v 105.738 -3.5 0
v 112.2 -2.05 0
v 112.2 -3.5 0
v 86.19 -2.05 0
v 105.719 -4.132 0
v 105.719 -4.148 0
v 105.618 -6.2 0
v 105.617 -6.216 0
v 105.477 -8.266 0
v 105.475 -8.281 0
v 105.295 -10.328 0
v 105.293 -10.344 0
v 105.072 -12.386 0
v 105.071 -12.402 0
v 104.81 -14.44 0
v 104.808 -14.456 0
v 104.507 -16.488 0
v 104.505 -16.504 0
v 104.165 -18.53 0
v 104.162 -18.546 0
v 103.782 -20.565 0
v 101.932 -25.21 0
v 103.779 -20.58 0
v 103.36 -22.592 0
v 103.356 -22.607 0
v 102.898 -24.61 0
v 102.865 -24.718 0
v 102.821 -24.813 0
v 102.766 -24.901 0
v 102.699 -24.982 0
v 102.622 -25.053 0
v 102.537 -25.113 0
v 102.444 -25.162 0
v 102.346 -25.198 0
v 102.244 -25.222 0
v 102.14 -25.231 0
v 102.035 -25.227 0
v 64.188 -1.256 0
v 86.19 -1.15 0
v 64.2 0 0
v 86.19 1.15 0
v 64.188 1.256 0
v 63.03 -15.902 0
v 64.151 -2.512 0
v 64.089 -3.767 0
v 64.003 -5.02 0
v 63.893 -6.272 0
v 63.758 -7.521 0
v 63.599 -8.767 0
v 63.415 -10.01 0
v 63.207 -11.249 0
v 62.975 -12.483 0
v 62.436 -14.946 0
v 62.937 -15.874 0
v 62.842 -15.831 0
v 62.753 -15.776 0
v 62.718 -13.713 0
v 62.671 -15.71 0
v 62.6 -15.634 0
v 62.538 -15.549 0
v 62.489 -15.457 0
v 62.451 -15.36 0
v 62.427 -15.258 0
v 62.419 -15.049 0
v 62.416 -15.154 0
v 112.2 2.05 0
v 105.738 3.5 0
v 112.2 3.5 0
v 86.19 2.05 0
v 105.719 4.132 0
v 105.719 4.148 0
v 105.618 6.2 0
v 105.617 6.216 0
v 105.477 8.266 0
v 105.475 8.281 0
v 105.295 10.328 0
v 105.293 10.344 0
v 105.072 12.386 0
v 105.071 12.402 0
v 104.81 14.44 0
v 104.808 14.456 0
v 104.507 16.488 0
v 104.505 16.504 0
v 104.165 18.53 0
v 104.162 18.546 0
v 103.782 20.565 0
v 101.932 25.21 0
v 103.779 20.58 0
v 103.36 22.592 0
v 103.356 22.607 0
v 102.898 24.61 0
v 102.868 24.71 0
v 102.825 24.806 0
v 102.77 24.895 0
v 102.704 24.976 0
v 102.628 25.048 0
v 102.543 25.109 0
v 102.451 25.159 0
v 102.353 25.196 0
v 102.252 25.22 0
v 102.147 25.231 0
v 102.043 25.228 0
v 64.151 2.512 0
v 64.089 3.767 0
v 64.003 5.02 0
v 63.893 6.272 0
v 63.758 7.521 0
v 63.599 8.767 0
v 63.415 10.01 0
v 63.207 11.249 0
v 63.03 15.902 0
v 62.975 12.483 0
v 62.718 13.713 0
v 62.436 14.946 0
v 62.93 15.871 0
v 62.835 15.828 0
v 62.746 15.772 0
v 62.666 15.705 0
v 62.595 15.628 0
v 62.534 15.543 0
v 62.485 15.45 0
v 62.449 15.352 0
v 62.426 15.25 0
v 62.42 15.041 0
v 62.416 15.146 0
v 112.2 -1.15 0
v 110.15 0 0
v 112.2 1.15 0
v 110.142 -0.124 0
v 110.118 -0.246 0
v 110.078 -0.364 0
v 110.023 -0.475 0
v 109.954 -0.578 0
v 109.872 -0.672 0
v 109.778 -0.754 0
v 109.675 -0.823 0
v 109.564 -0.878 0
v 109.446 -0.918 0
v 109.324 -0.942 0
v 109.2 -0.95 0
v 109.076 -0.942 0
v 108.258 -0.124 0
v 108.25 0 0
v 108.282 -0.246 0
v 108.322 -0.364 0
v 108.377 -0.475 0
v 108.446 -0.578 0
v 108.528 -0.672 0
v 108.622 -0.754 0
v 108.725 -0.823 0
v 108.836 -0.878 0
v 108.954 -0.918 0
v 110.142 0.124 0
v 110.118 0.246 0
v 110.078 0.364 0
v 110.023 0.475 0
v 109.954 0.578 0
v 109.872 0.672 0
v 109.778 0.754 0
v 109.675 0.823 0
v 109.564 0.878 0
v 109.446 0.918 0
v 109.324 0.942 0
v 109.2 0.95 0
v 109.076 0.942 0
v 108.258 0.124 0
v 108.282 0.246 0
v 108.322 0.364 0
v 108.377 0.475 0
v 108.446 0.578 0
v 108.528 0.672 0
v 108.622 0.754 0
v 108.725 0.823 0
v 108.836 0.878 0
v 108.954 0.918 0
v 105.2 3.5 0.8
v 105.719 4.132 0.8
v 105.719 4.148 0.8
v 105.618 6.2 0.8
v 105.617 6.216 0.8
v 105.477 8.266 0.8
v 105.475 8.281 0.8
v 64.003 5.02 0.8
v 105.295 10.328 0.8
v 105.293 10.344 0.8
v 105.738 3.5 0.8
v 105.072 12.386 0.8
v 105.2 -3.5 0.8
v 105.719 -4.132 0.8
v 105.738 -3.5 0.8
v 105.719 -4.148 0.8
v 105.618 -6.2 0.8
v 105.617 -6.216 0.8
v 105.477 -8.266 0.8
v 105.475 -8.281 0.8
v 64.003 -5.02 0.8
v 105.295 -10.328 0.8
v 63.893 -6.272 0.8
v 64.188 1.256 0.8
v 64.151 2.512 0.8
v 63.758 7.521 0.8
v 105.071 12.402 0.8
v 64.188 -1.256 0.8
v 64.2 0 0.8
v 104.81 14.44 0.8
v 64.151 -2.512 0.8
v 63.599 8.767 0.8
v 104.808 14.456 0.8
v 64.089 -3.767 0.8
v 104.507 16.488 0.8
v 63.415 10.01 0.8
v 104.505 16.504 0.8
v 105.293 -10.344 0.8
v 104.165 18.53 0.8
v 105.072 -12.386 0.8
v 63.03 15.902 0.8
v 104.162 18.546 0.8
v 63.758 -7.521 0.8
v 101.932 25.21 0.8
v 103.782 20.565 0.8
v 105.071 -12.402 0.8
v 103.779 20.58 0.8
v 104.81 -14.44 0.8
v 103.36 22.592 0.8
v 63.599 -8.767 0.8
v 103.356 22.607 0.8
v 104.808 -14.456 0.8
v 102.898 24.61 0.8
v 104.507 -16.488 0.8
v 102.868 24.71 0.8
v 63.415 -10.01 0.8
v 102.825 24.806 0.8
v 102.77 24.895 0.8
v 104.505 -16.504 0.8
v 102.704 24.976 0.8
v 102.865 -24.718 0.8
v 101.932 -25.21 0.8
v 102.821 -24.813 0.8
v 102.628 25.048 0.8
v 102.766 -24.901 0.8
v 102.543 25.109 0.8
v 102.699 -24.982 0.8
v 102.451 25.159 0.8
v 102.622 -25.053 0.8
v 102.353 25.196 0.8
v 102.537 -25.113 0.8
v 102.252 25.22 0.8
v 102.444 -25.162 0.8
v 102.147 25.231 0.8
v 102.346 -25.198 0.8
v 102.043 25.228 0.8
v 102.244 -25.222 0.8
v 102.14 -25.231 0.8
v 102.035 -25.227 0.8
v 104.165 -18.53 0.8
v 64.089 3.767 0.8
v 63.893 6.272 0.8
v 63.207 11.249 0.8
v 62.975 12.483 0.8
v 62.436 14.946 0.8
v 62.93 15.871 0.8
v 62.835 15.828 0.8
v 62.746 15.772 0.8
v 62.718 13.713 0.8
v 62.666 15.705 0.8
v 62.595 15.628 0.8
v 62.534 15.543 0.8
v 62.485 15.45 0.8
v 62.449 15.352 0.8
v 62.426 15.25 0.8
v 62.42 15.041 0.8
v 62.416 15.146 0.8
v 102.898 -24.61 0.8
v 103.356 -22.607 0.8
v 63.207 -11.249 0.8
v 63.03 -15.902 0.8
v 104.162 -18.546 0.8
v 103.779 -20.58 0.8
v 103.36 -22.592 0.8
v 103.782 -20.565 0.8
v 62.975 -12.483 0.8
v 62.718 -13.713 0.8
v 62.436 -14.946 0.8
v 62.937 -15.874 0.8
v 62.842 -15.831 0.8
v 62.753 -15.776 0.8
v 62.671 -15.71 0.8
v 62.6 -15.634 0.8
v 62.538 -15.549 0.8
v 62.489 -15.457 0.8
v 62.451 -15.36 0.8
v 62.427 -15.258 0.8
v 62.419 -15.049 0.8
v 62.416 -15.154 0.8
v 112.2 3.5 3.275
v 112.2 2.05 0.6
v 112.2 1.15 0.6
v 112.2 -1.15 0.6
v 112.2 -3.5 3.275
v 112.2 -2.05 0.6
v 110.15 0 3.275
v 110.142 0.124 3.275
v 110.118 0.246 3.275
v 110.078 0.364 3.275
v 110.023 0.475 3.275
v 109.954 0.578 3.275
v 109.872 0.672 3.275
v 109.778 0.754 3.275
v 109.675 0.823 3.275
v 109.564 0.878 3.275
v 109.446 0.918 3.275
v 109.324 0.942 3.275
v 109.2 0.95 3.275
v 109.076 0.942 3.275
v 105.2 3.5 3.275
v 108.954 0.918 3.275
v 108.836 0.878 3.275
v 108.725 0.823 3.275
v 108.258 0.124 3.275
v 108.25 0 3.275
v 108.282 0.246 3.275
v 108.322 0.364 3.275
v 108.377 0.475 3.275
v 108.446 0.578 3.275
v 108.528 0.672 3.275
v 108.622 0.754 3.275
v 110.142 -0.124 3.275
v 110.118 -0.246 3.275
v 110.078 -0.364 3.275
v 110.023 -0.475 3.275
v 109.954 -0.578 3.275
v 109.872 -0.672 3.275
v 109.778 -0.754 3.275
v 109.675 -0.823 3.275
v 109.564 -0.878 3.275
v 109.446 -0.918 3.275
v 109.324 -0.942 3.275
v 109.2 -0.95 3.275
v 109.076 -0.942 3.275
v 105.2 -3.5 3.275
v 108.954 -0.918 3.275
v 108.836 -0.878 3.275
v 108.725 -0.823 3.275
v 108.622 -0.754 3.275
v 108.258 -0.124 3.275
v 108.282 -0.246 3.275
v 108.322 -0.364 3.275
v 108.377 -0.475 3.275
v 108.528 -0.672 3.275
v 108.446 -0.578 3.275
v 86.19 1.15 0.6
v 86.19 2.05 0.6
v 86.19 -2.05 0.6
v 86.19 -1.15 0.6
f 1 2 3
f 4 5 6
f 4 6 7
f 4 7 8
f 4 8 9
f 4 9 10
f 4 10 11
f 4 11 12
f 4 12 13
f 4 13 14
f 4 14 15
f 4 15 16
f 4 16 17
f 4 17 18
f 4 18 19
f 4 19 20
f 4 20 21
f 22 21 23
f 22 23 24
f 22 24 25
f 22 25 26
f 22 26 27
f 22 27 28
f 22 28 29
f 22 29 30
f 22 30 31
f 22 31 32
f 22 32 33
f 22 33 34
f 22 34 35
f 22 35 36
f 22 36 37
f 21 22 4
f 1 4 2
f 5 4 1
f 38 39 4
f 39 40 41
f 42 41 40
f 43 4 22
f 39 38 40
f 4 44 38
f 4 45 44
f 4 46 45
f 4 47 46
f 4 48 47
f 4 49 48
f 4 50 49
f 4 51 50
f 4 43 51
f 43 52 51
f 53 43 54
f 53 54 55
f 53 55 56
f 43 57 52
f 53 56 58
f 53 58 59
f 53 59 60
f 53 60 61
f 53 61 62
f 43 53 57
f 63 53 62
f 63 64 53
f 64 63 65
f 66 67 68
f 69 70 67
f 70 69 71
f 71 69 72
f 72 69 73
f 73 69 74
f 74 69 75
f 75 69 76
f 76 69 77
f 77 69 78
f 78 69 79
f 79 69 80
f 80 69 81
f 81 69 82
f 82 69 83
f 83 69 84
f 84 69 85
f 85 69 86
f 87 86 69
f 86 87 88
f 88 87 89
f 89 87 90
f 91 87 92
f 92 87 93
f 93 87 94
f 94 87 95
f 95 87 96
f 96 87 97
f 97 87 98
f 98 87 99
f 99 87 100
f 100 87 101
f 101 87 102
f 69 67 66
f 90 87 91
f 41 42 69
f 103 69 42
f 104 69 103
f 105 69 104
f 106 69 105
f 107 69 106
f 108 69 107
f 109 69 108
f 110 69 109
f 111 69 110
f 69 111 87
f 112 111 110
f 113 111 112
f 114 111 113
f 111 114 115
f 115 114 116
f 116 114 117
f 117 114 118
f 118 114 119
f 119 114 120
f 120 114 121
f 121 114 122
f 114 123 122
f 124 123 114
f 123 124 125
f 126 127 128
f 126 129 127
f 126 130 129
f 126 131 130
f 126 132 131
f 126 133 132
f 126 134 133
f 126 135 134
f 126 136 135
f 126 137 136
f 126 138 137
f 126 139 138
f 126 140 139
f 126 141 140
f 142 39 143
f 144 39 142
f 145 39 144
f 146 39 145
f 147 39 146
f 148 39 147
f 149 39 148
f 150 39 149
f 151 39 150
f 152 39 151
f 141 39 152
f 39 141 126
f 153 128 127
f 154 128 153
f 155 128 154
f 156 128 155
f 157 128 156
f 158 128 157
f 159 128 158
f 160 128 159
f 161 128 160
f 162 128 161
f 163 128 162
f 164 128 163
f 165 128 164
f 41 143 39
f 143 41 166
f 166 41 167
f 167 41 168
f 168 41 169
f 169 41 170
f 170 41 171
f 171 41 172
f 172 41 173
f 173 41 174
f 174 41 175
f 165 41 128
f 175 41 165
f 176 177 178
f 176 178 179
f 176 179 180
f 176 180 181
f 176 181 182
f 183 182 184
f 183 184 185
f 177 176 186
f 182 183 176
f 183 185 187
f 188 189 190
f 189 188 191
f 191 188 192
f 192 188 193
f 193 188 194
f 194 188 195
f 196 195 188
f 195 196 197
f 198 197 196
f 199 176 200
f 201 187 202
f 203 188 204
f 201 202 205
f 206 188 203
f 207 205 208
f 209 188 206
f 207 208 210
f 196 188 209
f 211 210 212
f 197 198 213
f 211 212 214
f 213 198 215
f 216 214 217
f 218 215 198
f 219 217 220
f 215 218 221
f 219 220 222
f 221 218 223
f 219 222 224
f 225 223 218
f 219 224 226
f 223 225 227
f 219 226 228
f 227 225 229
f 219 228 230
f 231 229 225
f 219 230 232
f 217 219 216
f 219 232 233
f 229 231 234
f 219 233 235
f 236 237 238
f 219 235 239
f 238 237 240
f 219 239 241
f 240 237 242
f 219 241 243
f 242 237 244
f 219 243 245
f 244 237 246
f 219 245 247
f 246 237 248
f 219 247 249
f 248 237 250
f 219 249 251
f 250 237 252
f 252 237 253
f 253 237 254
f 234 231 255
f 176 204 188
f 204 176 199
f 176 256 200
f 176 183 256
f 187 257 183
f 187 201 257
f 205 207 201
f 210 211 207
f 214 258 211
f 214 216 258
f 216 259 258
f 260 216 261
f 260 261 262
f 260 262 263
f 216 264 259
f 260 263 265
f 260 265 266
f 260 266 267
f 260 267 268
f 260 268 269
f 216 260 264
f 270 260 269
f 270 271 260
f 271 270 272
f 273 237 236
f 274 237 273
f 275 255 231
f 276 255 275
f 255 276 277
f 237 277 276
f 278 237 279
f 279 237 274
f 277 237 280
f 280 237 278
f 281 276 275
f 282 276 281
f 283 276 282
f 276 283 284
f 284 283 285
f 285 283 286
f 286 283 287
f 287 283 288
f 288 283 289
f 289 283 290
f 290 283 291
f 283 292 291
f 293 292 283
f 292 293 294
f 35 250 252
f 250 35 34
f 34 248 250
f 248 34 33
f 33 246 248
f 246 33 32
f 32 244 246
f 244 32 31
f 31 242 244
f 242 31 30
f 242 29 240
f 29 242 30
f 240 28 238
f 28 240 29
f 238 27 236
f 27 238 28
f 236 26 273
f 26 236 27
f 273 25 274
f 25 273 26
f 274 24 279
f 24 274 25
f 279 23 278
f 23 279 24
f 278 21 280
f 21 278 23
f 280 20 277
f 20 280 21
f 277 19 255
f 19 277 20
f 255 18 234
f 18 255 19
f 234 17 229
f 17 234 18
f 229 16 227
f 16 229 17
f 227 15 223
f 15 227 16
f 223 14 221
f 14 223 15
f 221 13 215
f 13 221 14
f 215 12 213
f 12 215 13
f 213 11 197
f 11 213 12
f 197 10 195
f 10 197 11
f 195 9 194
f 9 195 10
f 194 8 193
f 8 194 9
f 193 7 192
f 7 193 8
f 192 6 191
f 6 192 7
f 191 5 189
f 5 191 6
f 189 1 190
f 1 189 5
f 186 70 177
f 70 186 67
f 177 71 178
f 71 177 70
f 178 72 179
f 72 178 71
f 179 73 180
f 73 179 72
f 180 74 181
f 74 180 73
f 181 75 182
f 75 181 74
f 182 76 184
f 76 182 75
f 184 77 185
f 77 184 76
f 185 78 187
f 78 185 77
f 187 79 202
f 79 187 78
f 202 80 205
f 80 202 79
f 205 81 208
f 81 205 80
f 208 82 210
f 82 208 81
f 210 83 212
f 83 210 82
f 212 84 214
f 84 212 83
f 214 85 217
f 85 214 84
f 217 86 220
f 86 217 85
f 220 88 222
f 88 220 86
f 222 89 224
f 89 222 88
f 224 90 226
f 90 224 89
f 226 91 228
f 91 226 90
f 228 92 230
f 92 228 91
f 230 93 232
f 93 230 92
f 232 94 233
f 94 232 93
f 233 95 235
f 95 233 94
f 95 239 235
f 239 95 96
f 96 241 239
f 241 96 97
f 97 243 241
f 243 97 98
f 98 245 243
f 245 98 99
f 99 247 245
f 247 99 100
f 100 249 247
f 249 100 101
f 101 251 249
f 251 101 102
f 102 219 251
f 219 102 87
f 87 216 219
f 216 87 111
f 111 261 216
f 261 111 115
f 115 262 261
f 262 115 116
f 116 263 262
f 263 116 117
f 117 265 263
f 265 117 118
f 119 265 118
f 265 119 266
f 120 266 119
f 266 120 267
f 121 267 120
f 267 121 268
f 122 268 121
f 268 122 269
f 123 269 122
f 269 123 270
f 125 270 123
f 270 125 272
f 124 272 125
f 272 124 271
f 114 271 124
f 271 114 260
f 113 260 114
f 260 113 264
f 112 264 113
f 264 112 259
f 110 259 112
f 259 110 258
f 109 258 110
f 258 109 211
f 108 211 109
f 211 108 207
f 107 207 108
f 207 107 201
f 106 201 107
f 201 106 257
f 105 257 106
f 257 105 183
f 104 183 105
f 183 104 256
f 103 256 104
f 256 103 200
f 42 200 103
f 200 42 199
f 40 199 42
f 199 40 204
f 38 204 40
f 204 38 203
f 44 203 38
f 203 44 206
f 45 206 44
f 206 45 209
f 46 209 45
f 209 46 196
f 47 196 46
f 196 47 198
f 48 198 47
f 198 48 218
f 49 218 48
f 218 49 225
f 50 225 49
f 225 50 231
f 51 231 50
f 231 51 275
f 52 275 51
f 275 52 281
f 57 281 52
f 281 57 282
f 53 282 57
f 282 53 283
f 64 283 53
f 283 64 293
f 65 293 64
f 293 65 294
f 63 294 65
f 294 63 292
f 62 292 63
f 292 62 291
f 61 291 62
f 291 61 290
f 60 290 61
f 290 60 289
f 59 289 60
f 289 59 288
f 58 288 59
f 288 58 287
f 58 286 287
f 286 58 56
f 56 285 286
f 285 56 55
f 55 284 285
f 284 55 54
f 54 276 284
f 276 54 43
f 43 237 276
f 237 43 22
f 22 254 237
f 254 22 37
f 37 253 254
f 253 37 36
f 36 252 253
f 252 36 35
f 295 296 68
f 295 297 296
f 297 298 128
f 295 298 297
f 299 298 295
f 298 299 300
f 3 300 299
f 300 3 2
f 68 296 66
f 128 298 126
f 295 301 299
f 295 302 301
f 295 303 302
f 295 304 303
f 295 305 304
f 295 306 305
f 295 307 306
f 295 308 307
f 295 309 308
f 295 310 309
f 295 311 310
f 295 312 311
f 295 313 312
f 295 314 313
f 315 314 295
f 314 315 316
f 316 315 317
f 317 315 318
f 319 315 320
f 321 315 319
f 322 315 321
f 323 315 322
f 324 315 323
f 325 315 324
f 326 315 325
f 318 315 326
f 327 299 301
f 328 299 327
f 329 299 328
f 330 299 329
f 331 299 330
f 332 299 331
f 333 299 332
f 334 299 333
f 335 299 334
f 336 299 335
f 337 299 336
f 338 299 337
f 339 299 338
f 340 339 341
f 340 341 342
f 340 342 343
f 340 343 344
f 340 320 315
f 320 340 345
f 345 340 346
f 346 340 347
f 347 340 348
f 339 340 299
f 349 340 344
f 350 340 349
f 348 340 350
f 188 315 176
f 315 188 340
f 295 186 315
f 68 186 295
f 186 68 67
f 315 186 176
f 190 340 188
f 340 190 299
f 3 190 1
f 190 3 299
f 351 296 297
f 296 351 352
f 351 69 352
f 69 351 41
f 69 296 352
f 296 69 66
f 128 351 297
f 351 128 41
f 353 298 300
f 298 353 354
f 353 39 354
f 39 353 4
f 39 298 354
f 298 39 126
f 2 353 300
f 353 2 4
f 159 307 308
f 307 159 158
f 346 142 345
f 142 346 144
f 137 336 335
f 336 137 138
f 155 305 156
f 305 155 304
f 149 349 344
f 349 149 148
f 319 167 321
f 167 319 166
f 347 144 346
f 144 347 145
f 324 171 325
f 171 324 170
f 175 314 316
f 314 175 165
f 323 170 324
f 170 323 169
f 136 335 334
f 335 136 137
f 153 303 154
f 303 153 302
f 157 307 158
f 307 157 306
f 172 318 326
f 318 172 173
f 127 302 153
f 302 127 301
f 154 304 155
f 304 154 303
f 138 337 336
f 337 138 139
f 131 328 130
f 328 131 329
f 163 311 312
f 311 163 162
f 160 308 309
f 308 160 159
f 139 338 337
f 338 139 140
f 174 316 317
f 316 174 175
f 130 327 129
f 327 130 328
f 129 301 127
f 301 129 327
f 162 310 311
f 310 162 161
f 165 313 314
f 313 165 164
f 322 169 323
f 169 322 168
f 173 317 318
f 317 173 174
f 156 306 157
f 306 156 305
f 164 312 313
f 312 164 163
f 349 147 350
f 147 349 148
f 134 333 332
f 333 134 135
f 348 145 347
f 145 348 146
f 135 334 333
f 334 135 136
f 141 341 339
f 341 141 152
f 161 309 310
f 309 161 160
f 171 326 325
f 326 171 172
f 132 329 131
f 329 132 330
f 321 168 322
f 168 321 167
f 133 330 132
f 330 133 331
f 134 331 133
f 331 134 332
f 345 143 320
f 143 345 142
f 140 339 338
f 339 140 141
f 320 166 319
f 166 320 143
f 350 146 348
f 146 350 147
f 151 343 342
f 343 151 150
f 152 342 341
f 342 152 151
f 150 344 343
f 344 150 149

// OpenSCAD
// Gen-CK — bobbin LID (top flange + locating tab). Print x12, flange face DOWN on the bed.
// CA-glue onto the hub top BEFORE winding. Tab = lap joint into the stator tab pocket; 1.75 mm filament
// pin through pin hole + stator ledge, trim flush. Lead slots carry both leads flush.
include <parameters.scad>;
$fn = 48;
module sector_2d(r_in, r_out, ang) {
    polygon([
        for (a = [-ang/2 : ang/24 : ang/2]) [r_in*cos(a), r_in*sin(a)],
        for (a = [ang/2 : -ang/24 : -ang/2]) [r_out*cos(a), r_out*sin(a)]
    ]);
}
module footprint_2d() { offset(r=wall) sector_2d(coil_id_r, coil_od_r, span_deg); }
module hub_2d()       { offset(delta=-coil_core_inset) sector_2d(coil_id_r, coil_od_r, span_deg); }

difference() {
    union() {
        linear_extrude(flange_t) footprint_2d();
        translate([coil_od_r + 0.2, -tab_w/2, 0]) cube([tab_len, tab_w, tab_h]);
    }
    translate([coil_mount_r, 0, -0.1]) cylinder(d=pin_d, h=tab_h + 1);
    for (y = [lead_y, -lead_y])
        translate([coil_od_r - coil_core_inset - 0.5, y - lead_slot_w/2, -0.1])
            cube([coil_core_inset + tab_len + 2, lead_slot_w, lead_groove_d + 0.1]);
}
